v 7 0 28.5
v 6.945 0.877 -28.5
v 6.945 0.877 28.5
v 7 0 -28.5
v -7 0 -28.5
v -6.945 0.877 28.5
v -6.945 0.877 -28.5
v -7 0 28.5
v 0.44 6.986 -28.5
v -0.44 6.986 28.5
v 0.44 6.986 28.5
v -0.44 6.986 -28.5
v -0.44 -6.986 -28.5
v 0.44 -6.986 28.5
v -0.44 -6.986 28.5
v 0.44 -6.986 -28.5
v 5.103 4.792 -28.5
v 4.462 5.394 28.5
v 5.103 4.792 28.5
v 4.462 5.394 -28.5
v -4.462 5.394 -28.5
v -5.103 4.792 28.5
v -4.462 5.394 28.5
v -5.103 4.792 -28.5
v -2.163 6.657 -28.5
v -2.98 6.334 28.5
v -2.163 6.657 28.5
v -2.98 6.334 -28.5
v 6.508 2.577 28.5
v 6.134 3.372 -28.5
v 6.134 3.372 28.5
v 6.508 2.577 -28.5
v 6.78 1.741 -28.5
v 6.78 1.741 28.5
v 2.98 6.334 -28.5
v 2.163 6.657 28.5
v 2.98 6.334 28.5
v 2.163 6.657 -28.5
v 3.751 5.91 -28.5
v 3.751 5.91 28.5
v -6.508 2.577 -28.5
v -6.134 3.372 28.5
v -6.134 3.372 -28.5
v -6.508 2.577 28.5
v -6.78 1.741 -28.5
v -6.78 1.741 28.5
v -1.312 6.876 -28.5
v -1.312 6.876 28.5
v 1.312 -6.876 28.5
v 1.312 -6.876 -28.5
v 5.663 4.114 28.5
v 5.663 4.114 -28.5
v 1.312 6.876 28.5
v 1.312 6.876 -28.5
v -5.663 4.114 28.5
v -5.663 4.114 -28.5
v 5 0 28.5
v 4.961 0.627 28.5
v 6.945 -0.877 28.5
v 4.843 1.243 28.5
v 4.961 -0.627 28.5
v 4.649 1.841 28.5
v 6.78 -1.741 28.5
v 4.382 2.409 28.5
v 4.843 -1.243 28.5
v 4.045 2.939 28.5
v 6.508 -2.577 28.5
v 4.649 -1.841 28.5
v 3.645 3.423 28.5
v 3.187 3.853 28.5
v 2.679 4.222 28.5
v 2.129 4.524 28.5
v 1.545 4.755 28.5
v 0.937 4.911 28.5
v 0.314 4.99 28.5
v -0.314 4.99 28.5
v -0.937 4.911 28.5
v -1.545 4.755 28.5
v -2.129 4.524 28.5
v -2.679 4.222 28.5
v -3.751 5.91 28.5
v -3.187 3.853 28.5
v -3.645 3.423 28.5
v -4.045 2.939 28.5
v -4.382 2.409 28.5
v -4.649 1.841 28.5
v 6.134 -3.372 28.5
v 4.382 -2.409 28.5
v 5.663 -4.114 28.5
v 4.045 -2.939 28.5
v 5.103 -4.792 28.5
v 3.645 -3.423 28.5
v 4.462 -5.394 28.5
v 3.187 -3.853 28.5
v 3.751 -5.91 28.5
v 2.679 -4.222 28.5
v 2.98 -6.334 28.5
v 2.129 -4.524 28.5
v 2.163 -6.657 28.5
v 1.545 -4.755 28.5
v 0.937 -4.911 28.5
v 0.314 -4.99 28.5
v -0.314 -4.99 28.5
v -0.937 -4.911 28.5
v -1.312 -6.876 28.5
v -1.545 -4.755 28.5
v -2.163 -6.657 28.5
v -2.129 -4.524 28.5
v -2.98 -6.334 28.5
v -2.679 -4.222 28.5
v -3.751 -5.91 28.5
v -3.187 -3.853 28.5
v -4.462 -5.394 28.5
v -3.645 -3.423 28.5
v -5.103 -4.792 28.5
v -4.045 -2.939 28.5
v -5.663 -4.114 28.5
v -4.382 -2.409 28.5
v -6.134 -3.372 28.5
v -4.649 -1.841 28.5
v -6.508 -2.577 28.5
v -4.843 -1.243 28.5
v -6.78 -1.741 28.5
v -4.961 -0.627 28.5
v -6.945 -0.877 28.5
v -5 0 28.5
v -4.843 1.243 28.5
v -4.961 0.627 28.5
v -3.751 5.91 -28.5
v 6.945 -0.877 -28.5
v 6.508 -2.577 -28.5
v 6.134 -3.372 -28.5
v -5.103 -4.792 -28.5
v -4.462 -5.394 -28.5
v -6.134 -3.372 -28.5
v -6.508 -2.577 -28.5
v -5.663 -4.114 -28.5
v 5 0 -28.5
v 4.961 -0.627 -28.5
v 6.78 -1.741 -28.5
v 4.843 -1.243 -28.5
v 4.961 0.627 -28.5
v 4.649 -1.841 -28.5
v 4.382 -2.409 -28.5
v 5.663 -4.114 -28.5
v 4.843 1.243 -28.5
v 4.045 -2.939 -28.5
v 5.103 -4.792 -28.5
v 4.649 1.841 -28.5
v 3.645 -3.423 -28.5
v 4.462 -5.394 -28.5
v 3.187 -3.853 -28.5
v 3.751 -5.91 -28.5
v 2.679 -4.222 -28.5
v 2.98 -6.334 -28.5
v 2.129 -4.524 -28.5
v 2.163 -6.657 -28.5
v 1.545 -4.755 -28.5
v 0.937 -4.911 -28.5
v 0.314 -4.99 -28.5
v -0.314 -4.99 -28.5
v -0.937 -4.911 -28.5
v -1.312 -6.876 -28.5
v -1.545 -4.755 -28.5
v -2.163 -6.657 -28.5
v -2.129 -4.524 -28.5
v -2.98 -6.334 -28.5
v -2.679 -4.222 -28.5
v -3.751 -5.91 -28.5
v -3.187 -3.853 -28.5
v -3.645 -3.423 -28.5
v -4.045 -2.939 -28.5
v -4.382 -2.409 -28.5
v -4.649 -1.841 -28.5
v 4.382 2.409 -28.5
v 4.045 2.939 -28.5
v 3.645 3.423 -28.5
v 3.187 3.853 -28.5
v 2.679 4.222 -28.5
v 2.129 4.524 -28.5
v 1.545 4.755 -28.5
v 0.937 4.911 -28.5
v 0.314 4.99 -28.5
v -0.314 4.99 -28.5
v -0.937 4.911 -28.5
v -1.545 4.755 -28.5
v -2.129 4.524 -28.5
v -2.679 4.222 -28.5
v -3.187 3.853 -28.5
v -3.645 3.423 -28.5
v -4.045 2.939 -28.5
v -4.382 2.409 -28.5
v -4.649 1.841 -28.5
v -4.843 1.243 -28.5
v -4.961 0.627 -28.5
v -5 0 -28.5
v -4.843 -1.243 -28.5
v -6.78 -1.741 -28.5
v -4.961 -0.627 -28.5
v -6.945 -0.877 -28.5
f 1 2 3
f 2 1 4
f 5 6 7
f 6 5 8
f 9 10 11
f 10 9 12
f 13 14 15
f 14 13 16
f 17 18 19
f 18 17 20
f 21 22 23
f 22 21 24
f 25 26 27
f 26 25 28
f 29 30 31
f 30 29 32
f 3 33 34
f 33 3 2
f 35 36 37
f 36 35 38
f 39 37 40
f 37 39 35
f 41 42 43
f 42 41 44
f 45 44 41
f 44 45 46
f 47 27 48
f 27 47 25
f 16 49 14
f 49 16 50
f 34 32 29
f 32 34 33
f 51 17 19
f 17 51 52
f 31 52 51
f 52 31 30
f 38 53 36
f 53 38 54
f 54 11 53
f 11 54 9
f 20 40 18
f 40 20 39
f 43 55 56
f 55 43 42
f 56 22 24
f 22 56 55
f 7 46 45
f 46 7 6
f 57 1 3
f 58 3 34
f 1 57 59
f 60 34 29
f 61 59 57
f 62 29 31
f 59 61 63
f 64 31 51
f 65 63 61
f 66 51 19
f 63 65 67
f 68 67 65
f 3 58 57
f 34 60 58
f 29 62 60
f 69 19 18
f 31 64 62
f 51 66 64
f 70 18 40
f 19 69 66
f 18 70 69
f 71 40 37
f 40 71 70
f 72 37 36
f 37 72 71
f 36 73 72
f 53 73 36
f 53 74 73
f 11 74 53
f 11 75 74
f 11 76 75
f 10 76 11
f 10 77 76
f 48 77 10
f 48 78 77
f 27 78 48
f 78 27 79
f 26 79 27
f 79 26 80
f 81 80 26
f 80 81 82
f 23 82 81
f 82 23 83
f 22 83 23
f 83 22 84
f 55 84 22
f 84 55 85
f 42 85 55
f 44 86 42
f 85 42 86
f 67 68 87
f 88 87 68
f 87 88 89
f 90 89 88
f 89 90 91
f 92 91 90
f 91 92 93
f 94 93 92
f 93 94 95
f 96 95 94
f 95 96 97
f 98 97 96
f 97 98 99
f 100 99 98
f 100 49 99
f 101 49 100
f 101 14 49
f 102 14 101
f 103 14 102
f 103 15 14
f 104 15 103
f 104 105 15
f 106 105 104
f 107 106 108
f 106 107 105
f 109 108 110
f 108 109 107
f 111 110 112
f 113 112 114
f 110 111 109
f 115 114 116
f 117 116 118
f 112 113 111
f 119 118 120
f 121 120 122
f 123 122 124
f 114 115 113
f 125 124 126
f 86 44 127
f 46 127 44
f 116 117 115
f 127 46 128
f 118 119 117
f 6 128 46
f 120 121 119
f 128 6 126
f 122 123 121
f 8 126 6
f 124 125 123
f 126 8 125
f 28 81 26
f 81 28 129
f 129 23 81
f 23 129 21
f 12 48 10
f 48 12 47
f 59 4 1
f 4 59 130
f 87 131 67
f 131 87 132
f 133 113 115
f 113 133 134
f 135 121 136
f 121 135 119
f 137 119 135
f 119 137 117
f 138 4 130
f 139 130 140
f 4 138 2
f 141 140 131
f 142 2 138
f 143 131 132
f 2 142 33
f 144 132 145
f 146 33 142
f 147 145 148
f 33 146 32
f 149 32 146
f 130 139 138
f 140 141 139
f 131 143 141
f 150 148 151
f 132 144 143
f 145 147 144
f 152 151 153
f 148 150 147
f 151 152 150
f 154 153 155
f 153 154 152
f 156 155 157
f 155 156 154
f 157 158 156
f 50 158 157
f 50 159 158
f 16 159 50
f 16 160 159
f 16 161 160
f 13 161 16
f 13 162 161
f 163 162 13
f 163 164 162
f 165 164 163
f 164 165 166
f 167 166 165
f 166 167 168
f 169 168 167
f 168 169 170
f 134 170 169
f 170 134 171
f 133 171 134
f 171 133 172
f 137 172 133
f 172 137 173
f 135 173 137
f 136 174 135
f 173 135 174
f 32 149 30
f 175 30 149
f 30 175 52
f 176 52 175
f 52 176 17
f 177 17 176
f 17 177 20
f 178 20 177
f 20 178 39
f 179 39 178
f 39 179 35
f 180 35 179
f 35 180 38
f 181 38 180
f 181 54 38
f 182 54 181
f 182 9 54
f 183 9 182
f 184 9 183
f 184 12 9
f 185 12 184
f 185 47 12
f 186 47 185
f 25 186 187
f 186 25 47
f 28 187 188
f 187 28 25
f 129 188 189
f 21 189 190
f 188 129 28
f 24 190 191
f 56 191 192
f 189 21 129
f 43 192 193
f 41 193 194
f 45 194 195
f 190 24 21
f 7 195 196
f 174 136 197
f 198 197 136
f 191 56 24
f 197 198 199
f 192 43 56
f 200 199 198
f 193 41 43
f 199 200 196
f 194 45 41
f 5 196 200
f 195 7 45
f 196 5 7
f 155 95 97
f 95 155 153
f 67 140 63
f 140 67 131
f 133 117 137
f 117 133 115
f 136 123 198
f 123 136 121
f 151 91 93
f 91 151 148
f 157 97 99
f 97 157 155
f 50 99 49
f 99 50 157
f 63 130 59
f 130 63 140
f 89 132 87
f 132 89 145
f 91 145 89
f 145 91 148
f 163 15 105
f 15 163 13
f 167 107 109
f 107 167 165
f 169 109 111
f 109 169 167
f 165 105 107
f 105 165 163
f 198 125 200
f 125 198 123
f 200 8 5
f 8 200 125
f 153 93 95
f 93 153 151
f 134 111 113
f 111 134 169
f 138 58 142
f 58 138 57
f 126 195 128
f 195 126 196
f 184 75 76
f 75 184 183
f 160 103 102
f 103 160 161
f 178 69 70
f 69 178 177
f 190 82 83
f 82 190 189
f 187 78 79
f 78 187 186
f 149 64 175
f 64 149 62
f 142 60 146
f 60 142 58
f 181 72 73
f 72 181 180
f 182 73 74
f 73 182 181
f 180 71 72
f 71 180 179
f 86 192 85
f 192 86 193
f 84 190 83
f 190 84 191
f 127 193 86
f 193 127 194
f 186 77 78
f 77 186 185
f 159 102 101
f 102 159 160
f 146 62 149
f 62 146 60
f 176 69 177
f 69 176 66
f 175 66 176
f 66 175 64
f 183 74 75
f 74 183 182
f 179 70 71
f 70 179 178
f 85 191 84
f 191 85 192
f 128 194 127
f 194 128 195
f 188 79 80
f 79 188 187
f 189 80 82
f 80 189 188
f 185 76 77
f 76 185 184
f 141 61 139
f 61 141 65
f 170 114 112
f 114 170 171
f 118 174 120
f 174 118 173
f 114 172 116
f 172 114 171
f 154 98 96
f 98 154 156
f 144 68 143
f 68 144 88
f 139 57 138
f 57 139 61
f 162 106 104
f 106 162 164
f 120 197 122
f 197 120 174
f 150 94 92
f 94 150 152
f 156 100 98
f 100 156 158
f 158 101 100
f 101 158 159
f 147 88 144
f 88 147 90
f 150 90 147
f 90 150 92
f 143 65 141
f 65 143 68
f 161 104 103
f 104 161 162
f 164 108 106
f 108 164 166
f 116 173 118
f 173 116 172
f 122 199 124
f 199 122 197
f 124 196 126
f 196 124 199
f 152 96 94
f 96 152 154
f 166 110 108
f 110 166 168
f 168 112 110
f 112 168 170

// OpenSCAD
$fn = 50;


difference() {
	union() {
		translate(v = [0, 0, -28.5000000000]) {
			cylinder(h = 57, r = 7.0000000000);
		}
	}
	union() {
		translate(v = [0, 0, -100.0000000000]) {
			cylinder(h = 200, r = 5.0000000000);
		}
	}
}
